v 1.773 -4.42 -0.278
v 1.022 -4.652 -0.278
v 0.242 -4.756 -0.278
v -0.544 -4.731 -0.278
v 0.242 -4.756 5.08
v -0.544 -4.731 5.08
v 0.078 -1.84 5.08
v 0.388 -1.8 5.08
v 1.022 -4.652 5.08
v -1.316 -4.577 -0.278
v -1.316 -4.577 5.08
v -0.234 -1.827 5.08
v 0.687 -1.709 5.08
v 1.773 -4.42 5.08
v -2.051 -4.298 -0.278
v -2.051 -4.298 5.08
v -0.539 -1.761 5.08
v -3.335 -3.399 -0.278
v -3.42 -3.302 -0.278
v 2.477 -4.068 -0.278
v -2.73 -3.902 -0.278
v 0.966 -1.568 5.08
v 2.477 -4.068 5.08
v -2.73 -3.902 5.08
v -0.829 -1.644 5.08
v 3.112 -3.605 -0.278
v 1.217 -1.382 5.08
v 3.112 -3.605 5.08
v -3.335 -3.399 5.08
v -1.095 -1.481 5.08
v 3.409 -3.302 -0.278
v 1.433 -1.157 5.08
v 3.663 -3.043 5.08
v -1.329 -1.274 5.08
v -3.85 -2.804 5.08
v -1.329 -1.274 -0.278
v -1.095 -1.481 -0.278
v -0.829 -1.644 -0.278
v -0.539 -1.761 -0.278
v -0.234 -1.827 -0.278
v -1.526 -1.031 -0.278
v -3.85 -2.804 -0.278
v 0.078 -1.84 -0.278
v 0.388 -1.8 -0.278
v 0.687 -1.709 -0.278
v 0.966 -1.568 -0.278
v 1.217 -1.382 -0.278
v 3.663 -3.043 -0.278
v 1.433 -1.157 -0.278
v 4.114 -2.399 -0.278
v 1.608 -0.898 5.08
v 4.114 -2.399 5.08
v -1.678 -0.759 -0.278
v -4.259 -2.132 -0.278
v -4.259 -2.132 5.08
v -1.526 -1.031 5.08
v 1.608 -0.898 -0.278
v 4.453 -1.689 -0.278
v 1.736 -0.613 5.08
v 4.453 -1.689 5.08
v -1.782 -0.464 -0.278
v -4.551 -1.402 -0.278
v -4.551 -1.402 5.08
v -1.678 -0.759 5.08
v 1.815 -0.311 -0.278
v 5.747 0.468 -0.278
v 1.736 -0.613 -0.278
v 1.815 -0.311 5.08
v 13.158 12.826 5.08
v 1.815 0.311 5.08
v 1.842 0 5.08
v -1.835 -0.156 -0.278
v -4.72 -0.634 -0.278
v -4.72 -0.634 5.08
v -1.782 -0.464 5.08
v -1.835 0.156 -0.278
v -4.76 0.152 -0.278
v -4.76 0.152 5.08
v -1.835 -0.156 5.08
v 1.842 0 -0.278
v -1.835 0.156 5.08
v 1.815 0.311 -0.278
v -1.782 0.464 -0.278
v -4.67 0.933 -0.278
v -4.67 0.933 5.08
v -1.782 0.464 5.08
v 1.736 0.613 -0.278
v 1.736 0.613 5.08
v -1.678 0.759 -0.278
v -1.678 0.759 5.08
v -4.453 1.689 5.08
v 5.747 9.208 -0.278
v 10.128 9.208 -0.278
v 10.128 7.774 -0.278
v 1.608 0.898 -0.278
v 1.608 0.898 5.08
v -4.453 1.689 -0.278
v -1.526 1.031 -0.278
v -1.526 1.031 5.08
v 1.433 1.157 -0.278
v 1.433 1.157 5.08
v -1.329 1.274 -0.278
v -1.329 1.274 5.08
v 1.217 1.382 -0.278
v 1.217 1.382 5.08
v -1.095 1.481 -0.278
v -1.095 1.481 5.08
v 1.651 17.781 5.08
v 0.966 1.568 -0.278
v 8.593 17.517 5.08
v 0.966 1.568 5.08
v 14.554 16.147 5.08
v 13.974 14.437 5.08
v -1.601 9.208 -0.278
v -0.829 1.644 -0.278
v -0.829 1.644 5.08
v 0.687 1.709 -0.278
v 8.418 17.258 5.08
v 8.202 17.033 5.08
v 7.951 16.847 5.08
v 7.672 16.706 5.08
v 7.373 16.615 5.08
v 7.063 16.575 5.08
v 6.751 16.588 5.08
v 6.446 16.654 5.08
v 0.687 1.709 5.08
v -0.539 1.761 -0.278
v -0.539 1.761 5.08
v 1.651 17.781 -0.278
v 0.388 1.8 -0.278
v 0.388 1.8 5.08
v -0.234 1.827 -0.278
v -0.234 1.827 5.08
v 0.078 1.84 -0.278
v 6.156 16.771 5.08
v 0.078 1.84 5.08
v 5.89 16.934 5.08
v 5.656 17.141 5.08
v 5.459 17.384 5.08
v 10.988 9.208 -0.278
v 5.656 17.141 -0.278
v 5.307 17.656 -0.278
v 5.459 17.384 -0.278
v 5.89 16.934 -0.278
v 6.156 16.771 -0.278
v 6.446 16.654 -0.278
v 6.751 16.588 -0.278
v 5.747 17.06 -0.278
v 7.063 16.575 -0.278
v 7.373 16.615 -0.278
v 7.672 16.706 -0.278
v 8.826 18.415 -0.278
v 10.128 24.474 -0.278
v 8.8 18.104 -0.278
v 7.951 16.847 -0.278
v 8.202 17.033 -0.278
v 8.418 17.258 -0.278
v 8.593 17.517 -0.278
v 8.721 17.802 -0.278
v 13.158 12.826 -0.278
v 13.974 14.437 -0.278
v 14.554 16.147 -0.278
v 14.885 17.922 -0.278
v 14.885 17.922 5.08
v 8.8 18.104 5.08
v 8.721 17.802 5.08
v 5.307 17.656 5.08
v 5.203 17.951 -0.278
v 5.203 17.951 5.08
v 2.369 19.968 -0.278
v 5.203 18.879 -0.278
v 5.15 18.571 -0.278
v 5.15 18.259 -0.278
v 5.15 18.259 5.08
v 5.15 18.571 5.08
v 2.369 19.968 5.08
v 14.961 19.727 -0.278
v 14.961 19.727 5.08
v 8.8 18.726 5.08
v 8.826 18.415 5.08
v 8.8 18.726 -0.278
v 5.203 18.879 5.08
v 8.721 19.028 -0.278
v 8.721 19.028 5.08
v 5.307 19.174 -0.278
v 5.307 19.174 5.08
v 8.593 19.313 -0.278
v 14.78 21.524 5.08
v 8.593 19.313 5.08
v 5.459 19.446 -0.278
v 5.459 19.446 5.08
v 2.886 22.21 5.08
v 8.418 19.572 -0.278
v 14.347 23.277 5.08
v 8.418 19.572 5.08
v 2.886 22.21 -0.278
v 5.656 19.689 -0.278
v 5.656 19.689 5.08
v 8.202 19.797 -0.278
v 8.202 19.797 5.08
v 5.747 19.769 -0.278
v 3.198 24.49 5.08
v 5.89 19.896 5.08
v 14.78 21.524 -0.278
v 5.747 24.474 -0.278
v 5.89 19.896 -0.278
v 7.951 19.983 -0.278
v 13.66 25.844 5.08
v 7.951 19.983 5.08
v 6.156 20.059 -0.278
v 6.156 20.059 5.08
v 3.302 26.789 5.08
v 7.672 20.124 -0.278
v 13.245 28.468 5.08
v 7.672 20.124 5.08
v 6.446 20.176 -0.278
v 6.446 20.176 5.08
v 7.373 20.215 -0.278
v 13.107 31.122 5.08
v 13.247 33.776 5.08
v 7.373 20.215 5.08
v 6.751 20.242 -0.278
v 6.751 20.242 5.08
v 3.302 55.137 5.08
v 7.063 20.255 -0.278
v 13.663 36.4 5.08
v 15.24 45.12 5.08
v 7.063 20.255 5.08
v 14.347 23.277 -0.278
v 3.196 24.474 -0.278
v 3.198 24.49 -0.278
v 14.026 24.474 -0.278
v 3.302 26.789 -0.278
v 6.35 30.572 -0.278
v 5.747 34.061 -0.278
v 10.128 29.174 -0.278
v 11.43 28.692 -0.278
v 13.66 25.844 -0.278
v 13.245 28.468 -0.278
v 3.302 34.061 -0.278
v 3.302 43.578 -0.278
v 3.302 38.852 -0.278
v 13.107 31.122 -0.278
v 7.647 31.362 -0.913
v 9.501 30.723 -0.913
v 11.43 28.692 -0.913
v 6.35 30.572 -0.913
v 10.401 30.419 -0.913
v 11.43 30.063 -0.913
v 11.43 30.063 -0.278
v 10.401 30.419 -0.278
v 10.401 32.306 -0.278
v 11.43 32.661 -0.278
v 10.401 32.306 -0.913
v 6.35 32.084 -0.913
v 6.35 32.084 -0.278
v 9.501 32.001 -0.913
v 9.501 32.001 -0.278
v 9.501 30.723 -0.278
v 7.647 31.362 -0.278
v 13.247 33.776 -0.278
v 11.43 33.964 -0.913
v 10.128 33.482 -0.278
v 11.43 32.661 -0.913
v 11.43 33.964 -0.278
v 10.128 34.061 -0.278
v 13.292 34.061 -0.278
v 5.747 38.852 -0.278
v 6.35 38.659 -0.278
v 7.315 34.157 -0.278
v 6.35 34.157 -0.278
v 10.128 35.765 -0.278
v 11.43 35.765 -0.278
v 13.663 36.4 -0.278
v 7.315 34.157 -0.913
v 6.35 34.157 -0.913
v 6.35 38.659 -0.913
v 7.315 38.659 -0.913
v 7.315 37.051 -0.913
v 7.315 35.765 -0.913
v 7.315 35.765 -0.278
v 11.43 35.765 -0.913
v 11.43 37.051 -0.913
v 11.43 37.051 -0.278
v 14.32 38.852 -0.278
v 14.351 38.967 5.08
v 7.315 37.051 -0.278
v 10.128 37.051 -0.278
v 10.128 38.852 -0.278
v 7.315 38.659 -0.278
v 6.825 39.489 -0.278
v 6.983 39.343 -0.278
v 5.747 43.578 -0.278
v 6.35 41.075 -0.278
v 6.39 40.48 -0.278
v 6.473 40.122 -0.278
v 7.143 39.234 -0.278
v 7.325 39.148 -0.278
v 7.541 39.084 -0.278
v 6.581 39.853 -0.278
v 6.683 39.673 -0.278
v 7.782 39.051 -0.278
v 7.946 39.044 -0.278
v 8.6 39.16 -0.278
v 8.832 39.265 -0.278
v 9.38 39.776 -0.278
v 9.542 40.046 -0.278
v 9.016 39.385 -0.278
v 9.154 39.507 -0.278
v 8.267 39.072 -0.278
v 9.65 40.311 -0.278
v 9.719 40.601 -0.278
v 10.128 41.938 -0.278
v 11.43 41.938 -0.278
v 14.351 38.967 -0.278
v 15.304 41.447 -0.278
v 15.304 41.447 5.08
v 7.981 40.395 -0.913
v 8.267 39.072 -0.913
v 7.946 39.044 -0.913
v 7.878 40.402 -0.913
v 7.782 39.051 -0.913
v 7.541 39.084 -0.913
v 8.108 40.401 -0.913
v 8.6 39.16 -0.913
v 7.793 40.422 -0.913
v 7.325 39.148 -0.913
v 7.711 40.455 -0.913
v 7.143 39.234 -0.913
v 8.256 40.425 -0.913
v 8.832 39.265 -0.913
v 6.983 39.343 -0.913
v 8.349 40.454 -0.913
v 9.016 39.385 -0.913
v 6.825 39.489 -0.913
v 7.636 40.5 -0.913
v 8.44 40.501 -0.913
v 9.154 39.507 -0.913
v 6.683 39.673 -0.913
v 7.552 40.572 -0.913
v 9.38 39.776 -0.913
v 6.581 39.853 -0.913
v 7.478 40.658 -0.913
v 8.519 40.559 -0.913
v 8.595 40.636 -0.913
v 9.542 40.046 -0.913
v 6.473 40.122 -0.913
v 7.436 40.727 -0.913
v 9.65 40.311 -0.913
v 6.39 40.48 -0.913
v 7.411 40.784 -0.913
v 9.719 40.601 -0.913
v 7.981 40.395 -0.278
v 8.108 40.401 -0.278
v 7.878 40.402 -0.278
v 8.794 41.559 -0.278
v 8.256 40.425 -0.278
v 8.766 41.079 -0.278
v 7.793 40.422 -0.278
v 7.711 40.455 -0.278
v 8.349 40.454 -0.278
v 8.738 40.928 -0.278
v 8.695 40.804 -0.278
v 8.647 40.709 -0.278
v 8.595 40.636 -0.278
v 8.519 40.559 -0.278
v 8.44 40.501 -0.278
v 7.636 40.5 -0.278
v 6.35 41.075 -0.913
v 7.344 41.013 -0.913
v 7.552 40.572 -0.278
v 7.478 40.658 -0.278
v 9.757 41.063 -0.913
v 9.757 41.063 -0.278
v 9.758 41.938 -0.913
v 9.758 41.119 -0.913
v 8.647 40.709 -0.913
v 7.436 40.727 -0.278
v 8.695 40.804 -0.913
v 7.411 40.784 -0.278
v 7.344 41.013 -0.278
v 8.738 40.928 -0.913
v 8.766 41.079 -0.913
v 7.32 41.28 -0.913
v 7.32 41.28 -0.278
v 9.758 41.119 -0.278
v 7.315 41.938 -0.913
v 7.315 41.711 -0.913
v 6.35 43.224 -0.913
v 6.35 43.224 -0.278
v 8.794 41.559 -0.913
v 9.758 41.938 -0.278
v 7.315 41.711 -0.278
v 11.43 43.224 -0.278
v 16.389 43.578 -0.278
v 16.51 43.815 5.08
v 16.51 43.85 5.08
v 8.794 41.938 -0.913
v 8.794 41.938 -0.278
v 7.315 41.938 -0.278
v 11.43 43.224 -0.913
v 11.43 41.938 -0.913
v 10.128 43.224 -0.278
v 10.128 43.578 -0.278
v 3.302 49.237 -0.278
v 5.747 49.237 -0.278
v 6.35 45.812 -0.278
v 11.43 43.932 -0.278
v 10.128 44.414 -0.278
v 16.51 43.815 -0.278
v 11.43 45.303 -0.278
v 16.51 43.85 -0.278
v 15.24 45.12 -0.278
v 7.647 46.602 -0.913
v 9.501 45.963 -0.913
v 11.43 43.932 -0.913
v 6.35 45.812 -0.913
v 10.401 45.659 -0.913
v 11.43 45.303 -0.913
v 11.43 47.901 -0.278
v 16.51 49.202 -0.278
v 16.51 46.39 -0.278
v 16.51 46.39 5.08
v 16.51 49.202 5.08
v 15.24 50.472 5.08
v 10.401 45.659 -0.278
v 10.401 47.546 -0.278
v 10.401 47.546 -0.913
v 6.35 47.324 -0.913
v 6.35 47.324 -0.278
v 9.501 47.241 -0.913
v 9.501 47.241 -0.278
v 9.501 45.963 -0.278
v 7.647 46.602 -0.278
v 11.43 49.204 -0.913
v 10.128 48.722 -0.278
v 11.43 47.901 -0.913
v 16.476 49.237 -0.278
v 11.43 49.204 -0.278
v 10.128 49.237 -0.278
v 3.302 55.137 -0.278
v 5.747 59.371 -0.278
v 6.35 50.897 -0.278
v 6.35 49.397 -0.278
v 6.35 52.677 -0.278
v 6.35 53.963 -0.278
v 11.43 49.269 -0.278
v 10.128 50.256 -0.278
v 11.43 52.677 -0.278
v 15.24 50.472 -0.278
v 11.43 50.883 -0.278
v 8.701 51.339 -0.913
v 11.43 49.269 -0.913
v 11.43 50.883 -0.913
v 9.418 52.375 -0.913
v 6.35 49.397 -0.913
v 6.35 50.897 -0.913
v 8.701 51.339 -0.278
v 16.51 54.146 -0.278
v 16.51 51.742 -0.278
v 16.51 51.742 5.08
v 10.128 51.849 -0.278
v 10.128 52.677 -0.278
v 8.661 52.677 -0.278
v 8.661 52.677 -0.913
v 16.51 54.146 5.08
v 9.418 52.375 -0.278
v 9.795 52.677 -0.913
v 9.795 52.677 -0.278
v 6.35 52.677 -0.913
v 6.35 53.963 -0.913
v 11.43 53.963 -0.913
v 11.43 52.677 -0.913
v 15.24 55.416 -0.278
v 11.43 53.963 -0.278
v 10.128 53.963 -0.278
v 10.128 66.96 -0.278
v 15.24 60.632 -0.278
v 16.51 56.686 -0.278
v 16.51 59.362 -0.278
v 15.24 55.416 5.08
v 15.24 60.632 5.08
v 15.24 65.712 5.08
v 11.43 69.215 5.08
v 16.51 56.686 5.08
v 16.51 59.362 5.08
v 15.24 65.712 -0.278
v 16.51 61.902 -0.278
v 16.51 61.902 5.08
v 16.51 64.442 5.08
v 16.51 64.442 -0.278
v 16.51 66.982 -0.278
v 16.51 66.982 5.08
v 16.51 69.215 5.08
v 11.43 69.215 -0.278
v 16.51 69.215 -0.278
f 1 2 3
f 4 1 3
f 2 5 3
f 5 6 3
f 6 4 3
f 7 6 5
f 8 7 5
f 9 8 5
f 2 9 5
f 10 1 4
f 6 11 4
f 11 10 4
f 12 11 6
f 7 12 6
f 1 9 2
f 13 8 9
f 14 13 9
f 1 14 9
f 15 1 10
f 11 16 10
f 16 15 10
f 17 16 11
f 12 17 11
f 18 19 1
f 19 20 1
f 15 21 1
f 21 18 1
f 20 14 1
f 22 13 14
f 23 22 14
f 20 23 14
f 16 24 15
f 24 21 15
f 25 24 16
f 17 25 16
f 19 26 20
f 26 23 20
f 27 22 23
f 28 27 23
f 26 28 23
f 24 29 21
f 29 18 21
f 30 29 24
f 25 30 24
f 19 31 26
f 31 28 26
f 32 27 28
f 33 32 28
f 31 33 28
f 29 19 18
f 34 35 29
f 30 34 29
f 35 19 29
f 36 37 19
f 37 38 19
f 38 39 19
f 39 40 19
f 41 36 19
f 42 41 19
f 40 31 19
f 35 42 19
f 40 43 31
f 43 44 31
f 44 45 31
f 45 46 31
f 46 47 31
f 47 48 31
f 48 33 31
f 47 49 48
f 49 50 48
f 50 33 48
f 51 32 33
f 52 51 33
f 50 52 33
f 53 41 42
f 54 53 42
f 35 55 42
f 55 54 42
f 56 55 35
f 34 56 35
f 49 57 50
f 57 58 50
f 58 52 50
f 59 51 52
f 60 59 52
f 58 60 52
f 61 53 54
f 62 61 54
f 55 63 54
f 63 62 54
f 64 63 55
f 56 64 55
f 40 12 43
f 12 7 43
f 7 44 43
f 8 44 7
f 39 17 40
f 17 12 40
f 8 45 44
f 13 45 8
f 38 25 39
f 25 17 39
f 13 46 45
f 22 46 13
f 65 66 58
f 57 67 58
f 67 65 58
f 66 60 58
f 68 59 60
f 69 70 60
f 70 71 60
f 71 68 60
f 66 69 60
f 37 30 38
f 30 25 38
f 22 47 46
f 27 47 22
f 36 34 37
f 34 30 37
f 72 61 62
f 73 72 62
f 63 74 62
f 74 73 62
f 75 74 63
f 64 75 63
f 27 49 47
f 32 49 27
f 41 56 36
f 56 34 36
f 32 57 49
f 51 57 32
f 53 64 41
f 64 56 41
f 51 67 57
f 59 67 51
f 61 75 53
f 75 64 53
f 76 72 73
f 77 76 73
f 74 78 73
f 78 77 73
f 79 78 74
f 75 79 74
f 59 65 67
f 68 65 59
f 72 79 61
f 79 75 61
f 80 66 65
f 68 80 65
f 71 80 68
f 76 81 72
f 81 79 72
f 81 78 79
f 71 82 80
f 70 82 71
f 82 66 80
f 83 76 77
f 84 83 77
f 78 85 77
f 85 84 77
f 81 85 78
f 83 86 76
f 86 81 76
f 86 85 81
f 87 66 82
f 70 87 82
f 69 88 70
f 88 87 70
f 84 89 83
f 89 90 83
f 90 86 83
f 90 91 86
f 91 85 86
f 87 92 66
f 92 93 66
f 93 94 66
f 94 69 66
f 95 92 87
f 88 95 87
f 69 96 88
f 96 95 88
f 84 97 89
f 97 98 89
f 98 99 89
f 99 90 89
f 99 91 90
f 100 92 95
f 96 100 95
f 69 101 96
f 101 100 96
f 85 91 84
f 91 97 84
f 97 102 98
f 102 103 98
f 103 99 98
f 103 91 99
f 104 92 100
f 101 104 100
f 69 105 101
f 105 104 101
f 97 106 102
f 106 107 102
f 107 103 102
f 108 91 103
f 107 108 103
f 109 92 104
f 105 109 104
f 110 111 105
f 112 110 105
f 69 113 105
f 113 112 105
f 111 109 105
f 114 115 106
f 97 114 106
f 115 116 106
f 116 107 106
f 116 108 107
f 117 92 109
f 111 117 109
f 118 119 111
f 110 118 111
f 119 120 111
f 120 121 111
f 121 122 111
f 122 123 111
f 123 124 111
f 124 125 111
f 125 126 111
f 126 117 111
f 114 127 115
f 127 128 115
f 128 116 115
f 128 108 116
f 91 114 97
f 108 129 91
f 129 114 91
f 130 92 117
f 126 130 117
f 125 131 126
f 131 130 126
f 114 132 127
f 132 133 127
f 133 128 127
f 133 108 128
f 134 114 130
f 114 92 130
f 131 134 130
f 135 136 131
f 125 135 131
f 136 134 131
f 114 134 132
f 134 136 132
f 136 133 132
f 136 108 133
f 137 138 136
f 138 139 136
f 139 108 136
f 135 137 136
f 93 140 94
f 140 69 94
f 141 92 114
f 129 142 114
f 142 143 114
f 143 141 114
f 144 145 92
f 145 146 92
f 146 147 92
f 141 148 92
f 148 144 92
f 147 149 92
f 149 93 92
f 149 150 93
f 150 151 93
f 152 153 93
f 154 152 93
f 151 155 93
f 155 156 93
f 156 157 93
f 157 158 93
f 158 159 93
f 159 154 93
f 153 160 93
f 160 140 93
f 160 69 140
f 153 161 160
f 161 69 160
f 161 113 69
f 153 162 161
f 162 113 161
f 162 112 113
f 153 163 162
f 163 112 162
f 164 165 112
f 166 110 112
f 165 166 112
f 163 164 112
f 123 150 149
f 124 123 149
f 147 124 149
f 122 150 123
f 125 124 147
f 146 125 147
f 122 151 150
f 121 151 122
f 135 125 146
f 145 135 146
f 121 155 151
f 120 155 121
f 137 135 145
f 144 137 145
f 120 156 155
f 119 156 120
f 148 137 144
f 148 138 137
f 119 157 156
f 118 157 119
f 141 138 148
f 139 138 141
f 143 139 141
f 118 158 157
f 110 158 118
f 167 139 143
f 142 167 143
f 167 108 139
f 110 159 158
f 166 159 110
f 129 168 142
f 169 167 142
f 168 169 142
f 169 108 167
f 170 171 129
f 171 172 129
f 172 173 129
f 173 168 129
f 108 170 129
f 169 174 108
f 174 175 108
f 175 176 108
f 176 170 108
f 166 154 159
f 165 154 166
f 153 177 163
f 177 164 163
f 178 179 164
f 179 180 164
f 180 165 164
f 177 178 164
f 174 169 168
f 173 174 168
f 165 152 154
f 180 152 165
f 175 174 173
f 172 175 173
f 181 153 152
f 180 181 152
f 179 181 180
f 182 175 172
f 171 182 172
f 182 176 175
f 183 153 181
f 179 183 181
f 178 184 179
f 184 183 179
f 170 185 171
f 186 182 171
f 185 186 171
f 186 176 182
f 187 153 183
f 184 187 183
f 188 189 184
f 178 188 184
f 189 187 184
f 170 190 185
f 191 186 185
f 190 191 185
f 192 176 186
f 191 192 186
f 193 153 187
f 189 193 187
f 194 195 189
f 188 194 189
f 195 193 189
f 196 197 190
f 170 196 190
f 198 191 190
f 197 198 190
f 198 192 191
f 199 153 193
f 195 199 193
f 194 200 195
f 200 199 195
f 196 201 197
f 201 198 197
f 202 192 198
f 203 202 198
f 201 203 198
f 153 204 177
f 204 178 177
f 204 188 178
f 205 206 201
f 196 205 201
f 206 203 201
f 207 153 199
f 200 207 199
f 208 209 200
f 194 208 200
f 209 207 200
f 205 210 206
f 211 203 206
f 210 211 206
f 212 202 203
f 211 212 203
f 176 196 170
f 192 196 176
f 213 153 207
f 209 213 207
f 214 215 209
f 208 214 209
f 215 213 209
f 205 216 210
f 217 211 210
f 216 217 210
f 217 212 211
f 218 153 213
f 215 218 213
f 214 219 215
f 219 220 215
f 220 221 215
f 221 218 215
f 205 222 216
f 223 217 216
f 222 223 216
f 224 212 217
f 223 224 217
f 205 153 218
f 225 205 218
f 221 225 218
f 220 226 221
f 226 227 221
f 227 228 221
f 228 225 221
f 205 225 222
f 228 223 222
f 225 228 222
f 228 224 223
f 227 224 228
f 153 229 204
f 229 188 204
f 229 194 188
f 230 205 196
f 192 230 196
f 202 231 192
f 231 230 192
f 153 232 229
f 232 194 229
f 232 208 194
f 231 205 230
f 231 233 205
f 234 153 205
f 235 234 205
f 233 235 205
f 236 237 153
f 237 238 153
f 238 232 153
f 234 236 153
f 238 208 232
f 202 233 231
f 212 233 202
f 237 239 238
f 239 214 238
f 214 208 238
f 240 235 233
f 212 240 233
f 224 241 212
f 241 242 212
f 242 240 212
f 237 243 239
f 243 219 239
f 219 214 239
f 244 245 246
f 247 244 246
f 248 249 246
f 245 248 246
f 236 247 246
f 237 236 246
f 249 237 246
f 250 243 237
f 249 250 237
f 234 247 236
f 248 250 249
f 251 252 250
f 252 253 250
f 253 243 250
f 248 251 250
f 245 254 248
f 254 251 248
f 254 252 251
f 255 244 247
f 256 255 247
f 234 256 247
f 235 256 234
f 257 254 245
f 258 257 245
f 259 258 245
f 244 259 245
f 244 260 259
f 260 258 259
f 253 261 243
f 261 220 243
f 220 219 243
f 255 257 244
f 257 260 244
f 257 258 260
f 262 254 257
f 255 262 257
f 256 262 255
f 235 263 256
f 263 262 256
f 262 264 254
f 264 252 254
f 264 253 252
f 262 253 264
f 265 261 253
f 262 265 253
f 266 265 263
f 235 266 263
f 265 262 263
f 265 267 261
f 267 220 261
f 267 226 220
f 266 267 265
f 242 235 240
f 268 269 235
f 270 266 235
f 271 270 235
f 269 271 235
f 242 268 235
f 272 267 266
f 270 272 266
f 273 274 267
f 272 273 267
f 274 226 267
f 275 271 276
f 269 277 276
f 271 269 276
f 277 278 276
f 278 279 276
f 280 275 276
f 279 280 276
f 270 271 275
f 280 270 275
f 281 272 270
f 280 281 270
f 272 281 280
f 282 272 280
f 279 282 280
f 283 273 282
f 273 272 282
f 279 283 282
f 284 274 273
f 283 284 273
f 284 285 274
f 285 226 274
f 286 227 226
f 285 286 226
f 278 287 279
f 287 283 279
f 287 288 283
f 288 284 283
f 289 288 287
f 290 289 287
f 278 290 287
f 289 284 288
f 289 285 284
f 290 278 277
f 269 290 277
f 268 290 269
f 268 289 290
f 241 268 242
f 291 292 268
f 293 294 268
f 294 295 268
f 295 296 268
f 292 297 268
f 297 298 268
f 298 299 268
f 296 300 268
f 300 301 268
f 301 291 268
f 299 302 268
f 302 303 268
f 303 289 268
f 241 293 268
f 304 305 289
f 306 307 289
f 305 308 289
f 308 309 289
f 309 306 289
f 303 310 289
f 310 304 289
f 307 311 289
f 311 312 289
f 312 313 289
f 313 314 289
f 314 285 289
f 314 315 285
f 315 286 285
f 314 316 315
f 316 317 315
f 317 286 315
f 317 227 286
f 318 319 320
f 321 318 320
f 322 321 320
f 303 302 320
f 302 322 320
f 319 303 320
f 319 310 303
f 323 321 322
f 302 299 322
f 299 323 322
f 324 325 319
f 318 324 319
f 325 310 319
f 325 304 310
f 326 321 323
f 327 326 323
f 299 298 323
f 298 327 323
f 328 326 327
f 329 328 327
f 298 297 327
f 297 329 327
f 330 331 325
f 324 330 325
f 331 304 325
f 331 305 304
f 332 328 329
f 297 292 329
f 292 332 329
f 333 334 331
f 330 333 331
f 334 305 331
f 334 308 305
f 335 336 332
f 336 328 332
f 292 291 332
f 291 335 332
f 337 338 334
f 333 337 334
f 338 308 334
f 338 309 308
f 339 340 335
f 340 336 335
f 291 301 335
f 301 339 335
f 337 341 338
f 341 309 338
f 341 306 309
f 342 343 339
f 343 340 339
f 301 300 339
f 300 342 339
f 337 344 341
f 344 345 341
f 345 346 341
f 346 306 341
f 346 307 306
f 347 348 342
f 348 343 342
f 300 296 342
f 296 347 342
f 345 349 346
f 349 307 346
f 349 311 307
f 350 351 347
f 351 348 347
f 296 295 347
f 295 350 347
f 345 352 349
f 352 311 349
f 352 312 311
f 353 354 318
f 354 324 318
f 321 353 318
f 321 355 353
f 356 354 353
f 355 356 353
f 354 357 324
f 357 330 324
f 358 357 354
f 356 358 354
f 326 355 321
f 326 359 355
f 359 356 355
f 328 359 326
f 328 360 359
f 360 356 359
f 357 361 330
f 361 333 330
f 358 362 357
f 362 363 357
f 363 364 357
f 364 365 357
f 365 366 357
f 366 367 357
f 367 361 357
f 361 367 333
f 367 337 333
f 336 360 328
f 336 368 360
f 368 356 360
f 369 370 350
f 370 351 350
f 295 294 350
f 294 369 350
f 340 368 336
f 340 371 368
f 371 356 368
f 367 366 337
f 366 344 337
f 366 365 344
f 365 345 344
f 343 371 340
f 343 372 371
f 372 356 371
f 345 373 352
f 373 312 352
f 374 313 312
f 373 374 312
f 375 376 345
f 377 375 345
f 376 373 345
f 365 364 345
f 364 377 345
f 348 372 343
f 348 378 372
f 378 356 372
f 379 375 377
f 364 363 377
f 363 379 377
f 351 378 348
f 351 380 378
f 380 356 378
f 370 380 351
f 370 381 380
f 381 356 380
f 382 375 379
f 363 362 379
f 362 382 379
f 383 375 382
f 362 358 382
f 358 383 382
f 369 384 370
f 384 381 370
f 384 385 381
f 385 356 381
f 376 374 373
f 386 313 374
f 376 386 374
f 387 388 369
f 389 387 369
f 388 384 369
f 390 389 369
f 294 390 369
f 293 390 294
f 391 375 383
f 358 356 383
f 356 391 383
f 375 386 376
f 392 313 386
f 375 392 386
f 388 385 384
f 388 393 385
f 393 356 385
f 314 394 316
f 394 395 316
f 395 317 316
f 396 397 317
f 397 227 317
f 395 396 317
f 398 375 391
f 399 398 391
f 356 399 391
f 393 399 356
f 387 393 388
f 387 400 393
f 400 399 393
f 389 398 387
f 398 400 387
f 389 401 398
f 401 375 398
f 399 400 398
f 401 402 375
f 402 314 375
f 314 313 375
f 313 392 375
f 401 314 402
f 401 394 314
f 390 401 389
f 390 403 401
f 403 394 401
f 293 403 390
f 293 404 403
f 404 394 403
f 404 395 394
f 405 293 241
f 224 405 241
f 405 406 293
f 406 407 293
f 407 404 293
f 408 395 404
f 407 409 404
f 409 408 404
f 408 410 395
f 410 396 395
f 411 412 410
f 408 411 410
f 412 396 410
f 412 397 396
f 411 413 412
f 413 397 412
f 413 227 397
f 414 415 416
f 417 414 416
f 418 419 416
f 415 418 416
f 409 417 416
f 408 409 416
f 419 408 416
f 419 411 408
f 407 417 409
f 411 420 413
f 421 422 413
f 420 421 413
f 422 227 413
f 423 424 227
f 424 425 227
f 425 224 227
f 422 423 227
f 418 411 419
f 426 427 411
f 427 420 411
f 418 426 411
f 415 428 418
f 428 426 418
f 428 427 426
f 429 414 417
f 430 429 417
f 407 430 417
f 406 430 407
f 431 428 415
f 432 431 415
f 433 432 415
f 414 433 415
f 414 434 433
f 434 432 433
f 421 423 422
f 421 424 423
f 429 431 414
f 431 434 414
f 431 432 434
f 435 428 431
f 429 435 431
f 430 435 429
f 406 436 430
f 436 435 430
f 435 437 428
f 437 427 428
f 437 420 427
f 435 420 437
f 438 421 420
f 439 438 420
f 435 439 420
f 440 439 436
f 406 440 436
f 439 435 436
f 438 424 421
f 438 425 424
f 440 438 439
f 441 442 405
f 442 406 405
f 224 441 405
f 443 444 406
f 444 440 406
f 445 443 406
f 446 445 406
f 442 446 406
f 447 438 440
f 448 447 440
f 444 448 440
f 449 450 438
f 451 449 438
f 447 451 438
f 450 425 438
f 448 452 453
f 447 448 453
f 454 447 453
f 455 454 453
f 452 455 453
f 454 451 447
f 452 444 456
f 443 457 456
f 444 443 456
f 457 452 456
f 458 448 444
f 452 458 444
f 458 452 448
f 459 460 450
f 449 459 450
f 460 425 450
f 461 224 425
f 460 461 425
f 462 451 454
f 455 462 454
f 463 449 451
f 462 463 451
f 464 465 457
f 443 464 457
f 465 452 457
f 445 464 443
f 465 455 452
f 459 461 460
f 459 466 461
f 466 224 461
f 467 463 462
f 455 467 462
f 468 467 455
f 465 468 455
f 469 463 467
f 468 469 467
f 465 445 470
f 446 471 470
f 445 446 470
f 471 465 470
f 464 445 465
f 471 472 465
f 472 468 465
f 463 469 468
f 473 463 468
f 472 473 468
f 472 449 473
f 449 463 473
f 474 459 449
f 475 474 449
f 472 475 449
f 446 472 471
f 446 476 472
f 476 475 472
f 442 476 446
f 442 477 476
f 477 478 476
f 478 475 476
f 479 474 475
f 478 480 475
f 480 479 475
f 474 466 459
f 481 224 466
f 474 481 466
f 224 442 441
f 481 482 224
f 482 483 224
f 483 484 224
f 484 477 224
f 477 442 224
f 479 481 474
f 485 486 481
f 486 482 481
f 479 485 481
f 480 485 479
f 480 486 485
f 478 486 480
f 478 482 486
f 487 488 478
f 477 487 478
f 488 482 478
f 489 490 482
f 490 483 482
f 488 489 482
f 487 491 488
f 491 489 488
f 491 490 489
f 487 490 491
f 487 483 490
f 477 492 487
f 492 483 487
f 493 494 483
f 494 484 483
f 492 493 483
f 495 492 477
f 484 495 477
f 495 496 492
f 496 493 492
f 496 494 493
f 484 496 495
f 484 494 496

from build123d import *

# Parameters (mm, degrees)
BOSS_EXTRUDE1_DEPTH      = 5.08
BOSS_EXTRUDE1_DEPTH_BACK = 0.278409343
SKETCH1_R                = 1.8415
CUT_EXTRUDE1_DEPTH       = 72.358313291
CUT_EXTRUDE1_DEPTH_BACK  = 72.358313291
BOSS_EXTRUDE2_DEPTH      = 0.635
FILLET2_R                = 12.7
CUT_EXTRUDE2_DEPTH       = 72.358313411
CUT_EXTRUDE2_DEPTH_BACK  = 72.358313411
FILLET3_R                = 25.4


with BuildPart() as part:
    # Sketch1 → Boss-Extrude1 (new, two sides: drawn at the far end of the back side and taken through both)
    with BuildSketch(Plane.XY.offset(-BOSS_EXTRUDE1_DEPTH_BACK)):
        with BuildLine():
            Line((-1.208443772, 47.324573258), (-1.208443772, 10.242675014))
            Line((-1.208443772, 10.242675014), (-4.452925719, 1.68904079))
            ThreePointArc((-4.452925719, 1.68904079), (-1.68904079, -4.452925719), (4.452925719, -1.68904079))
            Line((4.452925719, -1.68904079), (16.51, 18.415))
            ThreePointArc((16.51, 18.415), (13.107045256, 31.115), (16.51, 43.815))
            Line((16.51, 43.815), (16.51, 69.215))
            Line((16.51, 69.215), (11.43, 69.215))
            Line((11.43, 69.215), (-1.208443772, 47.324573258))
        make_face()
        Circle(SKETCH1_R, mode=Mode.SUBTRACT)
        with Locations((6.985, 18.415)):
            Circle(SKETCH1_R, mode=Mode.SUBTRACT)
    extrude(amount=BOSS_EXTRUDE1_DEPTH + BOSS_EXTRUDE1_DEPTH_BACK)

    # Sketch2 → Cut-Extrude1 (cut, two sides: drawn at the far end of the back side and taken through both)
    with BuildSketch(Plane(origin=(0, 0, -0.278409343), x_dir=(-1, 0, 0), z_dir=(0, 0, -1)).offset(-CUT_EXTRUDE1_DEPTH_BACK)):
        Polygon((-16.51, 64.442139164), (-15.24, 65.712139164), (-16.51, 66.982139164), align=None)
        Polygon((-16.51, 61.902139164), (-16.51, 59.362139164), (-15.24, 60.632139164), align=None)
        Polygon((-15.24, 55.415909985), (-16.51, 56.685909985), (-16.51, 54.145909985), align=None)
        Polygon((-16.51, 49.202139164), (-15.24, 50.472139164), (-16.51, 51.742139164), align=None)
        Polygon((-16.51, 43.849680806), (-15.24, 45.119680806), (-16.51, 46.389680806), align=None)
    extrude(amount=CUT_EXTRUDE1_DEPTH + CUT_EXTRUDE1_DEPTH_BACK, mode=Mode.SUBTRACT)

    # Sketch5 → Boss-Extrude2 (add)
    # profile 1 of 5: a face of its own
    with BuildSketch(Plane(origin=(0, 0, -0.278409343), x_dir=(-1, 0, 0), z_dir=(0, 0, -1))):
        Polygon((-11.43, 49.268745692), (-11.43, 50.883373857), (-9.418496835, 52.375422908), (-9.795276899, 52.676846958), (-11.43, 52.676846958), (-11.43, 53.962922908), (-6.35, 53.962922908), (-6.35, 52.676846958), (-8.660917722, 52.676846958), (-6.35, 50.897440313), (-6.35, 49.397353287), (-8.701107595, 51.338524173), align=None)
    # profile 2 of 5: a face of its own
    with BuildSketch(Plane(origin=(0, 0, -0.278409343), x_dir=(-1, 0, 0), z_dir=(0, 0, -1))):
        Polygon((-11.43, 43.931530503), (-11.43, 45.303009933), (-10.401139241, 45.658690313), (-10.401139241, 47.54560487), (-11.43, 47.901285249), (-11.43, 49.204441895), (-6.35, 47.323555819), (-6.35, 45.812416579), align=None)
        Polygon((-9.500886076, 45.963128604), (-7.647128165, 46.602147591), (-9.500886076, 47.241166579), align=None, mode=Mode.SUBTRACT)
    # profile 3 of 5: a face of its own
    with BuildSketch(Plane(origin=(0, 0, -0.278409343), x_dir=(-1, 0, 0), z_dir=(0, 0, -1))):
        with BuildLine():
            add(Edge.make_bspline(
                [(-7.945537975, 39.044441895), (-8.001893228, 39.045595729), (-8.114416057, 39.047899554), (-8.28200483, 39.072775037), (-8.447950006, 39.109194211), (-8.609957002, 39.161582728), (-8.764806034, 39.226372615), (-8.907675176, 39.307175215), (-9.039325299, 39.398356472), (-9.116222705, 39.470801449), (-9.154248418, 39.506625439)],
                knots=[0, 0, 0, 0, 1.018976149, 2.03455883, 3.059303171, 4.090371279, 5.111291766, 6.090739543, 7.055872052, 8, 8, 8, 8], degree=3))
            add(Edge.make_bspline(
                [(-9.154248418, 39.506625439), (-9.201805939, 39.55801623), (-9.296070219, 39.659878477), (-9.418570971, 39.826256442), (-9.522735706, 40.00129059), (-9.610286921, 40.186696086), (-9.676976835, 40.389424255), (-9.724895215, 40.612612286), (-9.752324851, 40.858668471), (-9.756124843, 41.030087139), (-9.758101266, 41.11924411)],
                knots=[0, 0, 0, 0, 0.948117162, 1.879273337, 2.792894651, 3.704383692, 4.651446974, 5.677657949, 6.792121143, 8, 8, 8, 8], degree=3))
            Line((-9.758101266, 41.11924411), (-9.758101266, 41.938112781))
            Line((-9.758101266, 41.938112781), (-11.43, 41.938112781))
            Line((-11.43, 41.938112781), (-11.43, 43.22418873))
            Line((-11.43, 43.22418873), (-6.35, 43.22418873))
            Line((-6.35, 43.22418873), (-6.35, 41.075035249))
            add(Edge.make_bspline(
                [(-6.35, 41.075035249), (-6.350776756, 40.997637205), (-6.35226824, 40.849021858), (-6.368729674, 40.63535844), (-6.394065089, 40.440645282), (-6.429937183, 40.263077028), (-6.478568776, 40.100769403), (-6.533724195, 39.948050161), (-6.602528473, 39.805953028), (-6.656105267, 39.717237318), (-6.682571203, 39.673413414)],
                knots=[0, 0, 0, 0, 1.27106079, 2.440619017, 3.517381815, 4.494852357, 5.412224011, 6.298180721, 7.159333057, 8, 8, 8, 8], degree=3))
            add(Edge.make_bspline(
                [(-6.682571203, 39.673413414), (-6.716741123, 39.624441403), (-6.784307056, 39.527606537), (-6.908159272, 39.40226874), (-7.043131438, 39.291772761), (-7.194439682, 39.202199788), (-7.360207545, 39.131182806), (-7.541414973, 39.079940069), (-7.738556134, 39.049817137), (-7.875098439, 39.046271184), (-7.945537975, 39.044441895)],
                knots=[0, 0, 0, 0, 0.969589194, 1.917218374, 2.854679868, 3.800052037, 4.766330684, 5.780154268, 6.854824506, 8, 8, 8, 8], degree=3))
        make_face()
        with BuildLine():
            add(Edge.make_bspline(
                [(-7.980704114, 40.394821642), (-7.94708576, 40.396040367), (-7.881091423, 40.398432779), (-7.786293373, 40.42106559), (-7.698560794, 40.457900068), (-7.620028501, 40.509101182), (-7.551714372, 40.570364624), (-7.492559182, 40.636019652), (-7.443946978, 40.706545052), (-7.421922651, 40.758113612), (-7.411012658, 40.783658667)],
                knots=[0, 0, 0, 0, 1.099448196, 2.158266167, 3.170681306, 4.20198982, 5.212085426, 6.167530276, 7.092265935, 8, 8, 8, 8], degree=3))
            add(Edge.make_bspline(
                [(-7.411012658, 40.783658667), (-7.398681248, 40.817631613), (-7.374423802, 40.884460703), (-7.349009707, 40.986535287), (-7.329727426, 41.086742841), (-7.322884819, 41.189157588), (-7.319312234, 41.298731496), (-7.315930195, 41.421655598), (-7.315672903, 41.560999172), (-7.314943057, 41.659128638), (-7.314556962, 41.711039996)],
                knots=[0, 0, 0, 0, 0.923484003, 1.816610051, 2.686736138, 3.528764097, 4.437155579, 5.490796045, 6.672608819, 8, 8, 8, 8], degree=3))
            Line((-7.314556962, 41.711039996), (-7.314556962, 41.938112781))
            Line((-7.314556962, 41.938112781), (-8.793544304, 41.938112781))
            Line((-8.793544304, 41.938112781), (-8.793544304, 41.559323224))
            add(Edge.make_bspline(
                [(-8.793544304, 41.559323224), (-8.793416885, 41.505386209), (-8.793174545, 41.402802255), (-8.784393416, 41.256060304), (-8.773143564, 41.124216394), (-8.756507529, 41.005510708), (-8.732152805, 40.898637133), (-8.695984985, 40.802354267), (-8.652914661, 40.713226884), (-8.613902833, 40.661532903), (-8.59460443, 40.635960882)],
                knots=[0, 0, 0, 0, 1.344391089, 2.556925957, 3.663619572, 4.642520217, 5.543736864, 6.38907055, 7.203104098, 8, 8, 8, 8], degree=3))
            add(Edge.make_bspline(
                [(-8.59460443, 40.635960882), (-8.57631846, 40.615730536), (-8.540475406, 40.576076235), (-8.478983071, 40.52504715), (-8.412749808, 40.483066813), (-8.340873581, 40.448470473), (-8.261518495, 40.425677511), (-8.175411224, 40.406665169), (-8.080697555, 40.397552624), (-8.014877557, 40.395754974), (-7.980704114, 40.394821642)],
                knots=[0, 0, 0, 0, 0.95676139, 1.87538582, 2.79551496, 3.705743042, 4.665608113, 5.687530201, 6.799376242, 8, 8, 8, 8], degree=3))
        make_face(mode=Mode.SUBTRACT)
    # profile 4 of 5: a face of its own
    with BuildSketch(Plane(origin=(0, 0, -0.278409343), x_dir=(-1, 0, 0), z_dir=(0, 0, -1))):
        Polygon((-7.314556962, 34.157353287), (-7.314556962, 35.764948224), (-11.43, 35.764948224), (-11.43, 37.051024173), (-7.314556962, 37.051024173), (-7.314556962, 38.65861911), (-6.35, 38.65861911), (-6.35, 34.157353287), align=None)
    # profile 5 of 5: a face of its own
    with BuildSketch(Plane(origin=(0, 0, -0.278409343), x_dir=(-1, 0, 0), z_dir=(0, 0, -1))):
        Polygon((-11.43, 28.691530503), (-11.43, 30.063009933), (-10.401139241, 30.418690313), (-10.401139241, 32.30560487), (-11.43, 32.661285249), (-11.43, 33.964441895), (-6.35, 32.083555819), (-6.35, 30.572416579), align=None)
        Polygon((-9.500886076, 30.723128604), (-7.647128165, 31.362147591), (-9.500886076, 32.001166579), align=None, mode=Mode.SUBTRACT)
    extrude(amount=BOSS_EXTRUDE2_DEPTH)

    # Fillet2
    fillet2_edges = [part.edges().sort_by_distance(p)[0] for p in [
        (16.51, 18.415, 2.400795328),
        (-1.208443772, 10.242675014, 2.400795328),
    ]]
    fillet(fillet2_edges, radius=FILLET2_R)

    # Sketch6 → Cut-Extrude2 (cut, two sides: drawn at the far end of the back side and taken through both)
    with BuildSketch(Plane(origin=(0, 0, -0.278409343), x_dir=(-1, 0, 0), z_dir=(0, 0, -1)).offset(-CUT_EXTRUDE2_DEPTH_BACK)):
        Polygon((-3.302, 55.136891036), (1.856635391, 55.136891036), (1.856635391, 24.765), (12.813790146, 19.47273461), (4.452925719, 1.68904079), (-2.532074281, 20.10404079), (-3.302, 22.133844959), align=None)
    extrude(amount=CUT_EXTRUDE2_DEPTH + CUT_EXTRUDE2_DEPTH_BACK, mode=Mode.SUBTRACT)

    # Fillet3
    fillet3_edges = [part.edges().sort_by_distance(p)[0] for p in [
        (3.302, 22.133844959, 2.400795328),
    ]]
    fillet(fillet3_edges, radius=FILLET3_R)


solid = part.part
